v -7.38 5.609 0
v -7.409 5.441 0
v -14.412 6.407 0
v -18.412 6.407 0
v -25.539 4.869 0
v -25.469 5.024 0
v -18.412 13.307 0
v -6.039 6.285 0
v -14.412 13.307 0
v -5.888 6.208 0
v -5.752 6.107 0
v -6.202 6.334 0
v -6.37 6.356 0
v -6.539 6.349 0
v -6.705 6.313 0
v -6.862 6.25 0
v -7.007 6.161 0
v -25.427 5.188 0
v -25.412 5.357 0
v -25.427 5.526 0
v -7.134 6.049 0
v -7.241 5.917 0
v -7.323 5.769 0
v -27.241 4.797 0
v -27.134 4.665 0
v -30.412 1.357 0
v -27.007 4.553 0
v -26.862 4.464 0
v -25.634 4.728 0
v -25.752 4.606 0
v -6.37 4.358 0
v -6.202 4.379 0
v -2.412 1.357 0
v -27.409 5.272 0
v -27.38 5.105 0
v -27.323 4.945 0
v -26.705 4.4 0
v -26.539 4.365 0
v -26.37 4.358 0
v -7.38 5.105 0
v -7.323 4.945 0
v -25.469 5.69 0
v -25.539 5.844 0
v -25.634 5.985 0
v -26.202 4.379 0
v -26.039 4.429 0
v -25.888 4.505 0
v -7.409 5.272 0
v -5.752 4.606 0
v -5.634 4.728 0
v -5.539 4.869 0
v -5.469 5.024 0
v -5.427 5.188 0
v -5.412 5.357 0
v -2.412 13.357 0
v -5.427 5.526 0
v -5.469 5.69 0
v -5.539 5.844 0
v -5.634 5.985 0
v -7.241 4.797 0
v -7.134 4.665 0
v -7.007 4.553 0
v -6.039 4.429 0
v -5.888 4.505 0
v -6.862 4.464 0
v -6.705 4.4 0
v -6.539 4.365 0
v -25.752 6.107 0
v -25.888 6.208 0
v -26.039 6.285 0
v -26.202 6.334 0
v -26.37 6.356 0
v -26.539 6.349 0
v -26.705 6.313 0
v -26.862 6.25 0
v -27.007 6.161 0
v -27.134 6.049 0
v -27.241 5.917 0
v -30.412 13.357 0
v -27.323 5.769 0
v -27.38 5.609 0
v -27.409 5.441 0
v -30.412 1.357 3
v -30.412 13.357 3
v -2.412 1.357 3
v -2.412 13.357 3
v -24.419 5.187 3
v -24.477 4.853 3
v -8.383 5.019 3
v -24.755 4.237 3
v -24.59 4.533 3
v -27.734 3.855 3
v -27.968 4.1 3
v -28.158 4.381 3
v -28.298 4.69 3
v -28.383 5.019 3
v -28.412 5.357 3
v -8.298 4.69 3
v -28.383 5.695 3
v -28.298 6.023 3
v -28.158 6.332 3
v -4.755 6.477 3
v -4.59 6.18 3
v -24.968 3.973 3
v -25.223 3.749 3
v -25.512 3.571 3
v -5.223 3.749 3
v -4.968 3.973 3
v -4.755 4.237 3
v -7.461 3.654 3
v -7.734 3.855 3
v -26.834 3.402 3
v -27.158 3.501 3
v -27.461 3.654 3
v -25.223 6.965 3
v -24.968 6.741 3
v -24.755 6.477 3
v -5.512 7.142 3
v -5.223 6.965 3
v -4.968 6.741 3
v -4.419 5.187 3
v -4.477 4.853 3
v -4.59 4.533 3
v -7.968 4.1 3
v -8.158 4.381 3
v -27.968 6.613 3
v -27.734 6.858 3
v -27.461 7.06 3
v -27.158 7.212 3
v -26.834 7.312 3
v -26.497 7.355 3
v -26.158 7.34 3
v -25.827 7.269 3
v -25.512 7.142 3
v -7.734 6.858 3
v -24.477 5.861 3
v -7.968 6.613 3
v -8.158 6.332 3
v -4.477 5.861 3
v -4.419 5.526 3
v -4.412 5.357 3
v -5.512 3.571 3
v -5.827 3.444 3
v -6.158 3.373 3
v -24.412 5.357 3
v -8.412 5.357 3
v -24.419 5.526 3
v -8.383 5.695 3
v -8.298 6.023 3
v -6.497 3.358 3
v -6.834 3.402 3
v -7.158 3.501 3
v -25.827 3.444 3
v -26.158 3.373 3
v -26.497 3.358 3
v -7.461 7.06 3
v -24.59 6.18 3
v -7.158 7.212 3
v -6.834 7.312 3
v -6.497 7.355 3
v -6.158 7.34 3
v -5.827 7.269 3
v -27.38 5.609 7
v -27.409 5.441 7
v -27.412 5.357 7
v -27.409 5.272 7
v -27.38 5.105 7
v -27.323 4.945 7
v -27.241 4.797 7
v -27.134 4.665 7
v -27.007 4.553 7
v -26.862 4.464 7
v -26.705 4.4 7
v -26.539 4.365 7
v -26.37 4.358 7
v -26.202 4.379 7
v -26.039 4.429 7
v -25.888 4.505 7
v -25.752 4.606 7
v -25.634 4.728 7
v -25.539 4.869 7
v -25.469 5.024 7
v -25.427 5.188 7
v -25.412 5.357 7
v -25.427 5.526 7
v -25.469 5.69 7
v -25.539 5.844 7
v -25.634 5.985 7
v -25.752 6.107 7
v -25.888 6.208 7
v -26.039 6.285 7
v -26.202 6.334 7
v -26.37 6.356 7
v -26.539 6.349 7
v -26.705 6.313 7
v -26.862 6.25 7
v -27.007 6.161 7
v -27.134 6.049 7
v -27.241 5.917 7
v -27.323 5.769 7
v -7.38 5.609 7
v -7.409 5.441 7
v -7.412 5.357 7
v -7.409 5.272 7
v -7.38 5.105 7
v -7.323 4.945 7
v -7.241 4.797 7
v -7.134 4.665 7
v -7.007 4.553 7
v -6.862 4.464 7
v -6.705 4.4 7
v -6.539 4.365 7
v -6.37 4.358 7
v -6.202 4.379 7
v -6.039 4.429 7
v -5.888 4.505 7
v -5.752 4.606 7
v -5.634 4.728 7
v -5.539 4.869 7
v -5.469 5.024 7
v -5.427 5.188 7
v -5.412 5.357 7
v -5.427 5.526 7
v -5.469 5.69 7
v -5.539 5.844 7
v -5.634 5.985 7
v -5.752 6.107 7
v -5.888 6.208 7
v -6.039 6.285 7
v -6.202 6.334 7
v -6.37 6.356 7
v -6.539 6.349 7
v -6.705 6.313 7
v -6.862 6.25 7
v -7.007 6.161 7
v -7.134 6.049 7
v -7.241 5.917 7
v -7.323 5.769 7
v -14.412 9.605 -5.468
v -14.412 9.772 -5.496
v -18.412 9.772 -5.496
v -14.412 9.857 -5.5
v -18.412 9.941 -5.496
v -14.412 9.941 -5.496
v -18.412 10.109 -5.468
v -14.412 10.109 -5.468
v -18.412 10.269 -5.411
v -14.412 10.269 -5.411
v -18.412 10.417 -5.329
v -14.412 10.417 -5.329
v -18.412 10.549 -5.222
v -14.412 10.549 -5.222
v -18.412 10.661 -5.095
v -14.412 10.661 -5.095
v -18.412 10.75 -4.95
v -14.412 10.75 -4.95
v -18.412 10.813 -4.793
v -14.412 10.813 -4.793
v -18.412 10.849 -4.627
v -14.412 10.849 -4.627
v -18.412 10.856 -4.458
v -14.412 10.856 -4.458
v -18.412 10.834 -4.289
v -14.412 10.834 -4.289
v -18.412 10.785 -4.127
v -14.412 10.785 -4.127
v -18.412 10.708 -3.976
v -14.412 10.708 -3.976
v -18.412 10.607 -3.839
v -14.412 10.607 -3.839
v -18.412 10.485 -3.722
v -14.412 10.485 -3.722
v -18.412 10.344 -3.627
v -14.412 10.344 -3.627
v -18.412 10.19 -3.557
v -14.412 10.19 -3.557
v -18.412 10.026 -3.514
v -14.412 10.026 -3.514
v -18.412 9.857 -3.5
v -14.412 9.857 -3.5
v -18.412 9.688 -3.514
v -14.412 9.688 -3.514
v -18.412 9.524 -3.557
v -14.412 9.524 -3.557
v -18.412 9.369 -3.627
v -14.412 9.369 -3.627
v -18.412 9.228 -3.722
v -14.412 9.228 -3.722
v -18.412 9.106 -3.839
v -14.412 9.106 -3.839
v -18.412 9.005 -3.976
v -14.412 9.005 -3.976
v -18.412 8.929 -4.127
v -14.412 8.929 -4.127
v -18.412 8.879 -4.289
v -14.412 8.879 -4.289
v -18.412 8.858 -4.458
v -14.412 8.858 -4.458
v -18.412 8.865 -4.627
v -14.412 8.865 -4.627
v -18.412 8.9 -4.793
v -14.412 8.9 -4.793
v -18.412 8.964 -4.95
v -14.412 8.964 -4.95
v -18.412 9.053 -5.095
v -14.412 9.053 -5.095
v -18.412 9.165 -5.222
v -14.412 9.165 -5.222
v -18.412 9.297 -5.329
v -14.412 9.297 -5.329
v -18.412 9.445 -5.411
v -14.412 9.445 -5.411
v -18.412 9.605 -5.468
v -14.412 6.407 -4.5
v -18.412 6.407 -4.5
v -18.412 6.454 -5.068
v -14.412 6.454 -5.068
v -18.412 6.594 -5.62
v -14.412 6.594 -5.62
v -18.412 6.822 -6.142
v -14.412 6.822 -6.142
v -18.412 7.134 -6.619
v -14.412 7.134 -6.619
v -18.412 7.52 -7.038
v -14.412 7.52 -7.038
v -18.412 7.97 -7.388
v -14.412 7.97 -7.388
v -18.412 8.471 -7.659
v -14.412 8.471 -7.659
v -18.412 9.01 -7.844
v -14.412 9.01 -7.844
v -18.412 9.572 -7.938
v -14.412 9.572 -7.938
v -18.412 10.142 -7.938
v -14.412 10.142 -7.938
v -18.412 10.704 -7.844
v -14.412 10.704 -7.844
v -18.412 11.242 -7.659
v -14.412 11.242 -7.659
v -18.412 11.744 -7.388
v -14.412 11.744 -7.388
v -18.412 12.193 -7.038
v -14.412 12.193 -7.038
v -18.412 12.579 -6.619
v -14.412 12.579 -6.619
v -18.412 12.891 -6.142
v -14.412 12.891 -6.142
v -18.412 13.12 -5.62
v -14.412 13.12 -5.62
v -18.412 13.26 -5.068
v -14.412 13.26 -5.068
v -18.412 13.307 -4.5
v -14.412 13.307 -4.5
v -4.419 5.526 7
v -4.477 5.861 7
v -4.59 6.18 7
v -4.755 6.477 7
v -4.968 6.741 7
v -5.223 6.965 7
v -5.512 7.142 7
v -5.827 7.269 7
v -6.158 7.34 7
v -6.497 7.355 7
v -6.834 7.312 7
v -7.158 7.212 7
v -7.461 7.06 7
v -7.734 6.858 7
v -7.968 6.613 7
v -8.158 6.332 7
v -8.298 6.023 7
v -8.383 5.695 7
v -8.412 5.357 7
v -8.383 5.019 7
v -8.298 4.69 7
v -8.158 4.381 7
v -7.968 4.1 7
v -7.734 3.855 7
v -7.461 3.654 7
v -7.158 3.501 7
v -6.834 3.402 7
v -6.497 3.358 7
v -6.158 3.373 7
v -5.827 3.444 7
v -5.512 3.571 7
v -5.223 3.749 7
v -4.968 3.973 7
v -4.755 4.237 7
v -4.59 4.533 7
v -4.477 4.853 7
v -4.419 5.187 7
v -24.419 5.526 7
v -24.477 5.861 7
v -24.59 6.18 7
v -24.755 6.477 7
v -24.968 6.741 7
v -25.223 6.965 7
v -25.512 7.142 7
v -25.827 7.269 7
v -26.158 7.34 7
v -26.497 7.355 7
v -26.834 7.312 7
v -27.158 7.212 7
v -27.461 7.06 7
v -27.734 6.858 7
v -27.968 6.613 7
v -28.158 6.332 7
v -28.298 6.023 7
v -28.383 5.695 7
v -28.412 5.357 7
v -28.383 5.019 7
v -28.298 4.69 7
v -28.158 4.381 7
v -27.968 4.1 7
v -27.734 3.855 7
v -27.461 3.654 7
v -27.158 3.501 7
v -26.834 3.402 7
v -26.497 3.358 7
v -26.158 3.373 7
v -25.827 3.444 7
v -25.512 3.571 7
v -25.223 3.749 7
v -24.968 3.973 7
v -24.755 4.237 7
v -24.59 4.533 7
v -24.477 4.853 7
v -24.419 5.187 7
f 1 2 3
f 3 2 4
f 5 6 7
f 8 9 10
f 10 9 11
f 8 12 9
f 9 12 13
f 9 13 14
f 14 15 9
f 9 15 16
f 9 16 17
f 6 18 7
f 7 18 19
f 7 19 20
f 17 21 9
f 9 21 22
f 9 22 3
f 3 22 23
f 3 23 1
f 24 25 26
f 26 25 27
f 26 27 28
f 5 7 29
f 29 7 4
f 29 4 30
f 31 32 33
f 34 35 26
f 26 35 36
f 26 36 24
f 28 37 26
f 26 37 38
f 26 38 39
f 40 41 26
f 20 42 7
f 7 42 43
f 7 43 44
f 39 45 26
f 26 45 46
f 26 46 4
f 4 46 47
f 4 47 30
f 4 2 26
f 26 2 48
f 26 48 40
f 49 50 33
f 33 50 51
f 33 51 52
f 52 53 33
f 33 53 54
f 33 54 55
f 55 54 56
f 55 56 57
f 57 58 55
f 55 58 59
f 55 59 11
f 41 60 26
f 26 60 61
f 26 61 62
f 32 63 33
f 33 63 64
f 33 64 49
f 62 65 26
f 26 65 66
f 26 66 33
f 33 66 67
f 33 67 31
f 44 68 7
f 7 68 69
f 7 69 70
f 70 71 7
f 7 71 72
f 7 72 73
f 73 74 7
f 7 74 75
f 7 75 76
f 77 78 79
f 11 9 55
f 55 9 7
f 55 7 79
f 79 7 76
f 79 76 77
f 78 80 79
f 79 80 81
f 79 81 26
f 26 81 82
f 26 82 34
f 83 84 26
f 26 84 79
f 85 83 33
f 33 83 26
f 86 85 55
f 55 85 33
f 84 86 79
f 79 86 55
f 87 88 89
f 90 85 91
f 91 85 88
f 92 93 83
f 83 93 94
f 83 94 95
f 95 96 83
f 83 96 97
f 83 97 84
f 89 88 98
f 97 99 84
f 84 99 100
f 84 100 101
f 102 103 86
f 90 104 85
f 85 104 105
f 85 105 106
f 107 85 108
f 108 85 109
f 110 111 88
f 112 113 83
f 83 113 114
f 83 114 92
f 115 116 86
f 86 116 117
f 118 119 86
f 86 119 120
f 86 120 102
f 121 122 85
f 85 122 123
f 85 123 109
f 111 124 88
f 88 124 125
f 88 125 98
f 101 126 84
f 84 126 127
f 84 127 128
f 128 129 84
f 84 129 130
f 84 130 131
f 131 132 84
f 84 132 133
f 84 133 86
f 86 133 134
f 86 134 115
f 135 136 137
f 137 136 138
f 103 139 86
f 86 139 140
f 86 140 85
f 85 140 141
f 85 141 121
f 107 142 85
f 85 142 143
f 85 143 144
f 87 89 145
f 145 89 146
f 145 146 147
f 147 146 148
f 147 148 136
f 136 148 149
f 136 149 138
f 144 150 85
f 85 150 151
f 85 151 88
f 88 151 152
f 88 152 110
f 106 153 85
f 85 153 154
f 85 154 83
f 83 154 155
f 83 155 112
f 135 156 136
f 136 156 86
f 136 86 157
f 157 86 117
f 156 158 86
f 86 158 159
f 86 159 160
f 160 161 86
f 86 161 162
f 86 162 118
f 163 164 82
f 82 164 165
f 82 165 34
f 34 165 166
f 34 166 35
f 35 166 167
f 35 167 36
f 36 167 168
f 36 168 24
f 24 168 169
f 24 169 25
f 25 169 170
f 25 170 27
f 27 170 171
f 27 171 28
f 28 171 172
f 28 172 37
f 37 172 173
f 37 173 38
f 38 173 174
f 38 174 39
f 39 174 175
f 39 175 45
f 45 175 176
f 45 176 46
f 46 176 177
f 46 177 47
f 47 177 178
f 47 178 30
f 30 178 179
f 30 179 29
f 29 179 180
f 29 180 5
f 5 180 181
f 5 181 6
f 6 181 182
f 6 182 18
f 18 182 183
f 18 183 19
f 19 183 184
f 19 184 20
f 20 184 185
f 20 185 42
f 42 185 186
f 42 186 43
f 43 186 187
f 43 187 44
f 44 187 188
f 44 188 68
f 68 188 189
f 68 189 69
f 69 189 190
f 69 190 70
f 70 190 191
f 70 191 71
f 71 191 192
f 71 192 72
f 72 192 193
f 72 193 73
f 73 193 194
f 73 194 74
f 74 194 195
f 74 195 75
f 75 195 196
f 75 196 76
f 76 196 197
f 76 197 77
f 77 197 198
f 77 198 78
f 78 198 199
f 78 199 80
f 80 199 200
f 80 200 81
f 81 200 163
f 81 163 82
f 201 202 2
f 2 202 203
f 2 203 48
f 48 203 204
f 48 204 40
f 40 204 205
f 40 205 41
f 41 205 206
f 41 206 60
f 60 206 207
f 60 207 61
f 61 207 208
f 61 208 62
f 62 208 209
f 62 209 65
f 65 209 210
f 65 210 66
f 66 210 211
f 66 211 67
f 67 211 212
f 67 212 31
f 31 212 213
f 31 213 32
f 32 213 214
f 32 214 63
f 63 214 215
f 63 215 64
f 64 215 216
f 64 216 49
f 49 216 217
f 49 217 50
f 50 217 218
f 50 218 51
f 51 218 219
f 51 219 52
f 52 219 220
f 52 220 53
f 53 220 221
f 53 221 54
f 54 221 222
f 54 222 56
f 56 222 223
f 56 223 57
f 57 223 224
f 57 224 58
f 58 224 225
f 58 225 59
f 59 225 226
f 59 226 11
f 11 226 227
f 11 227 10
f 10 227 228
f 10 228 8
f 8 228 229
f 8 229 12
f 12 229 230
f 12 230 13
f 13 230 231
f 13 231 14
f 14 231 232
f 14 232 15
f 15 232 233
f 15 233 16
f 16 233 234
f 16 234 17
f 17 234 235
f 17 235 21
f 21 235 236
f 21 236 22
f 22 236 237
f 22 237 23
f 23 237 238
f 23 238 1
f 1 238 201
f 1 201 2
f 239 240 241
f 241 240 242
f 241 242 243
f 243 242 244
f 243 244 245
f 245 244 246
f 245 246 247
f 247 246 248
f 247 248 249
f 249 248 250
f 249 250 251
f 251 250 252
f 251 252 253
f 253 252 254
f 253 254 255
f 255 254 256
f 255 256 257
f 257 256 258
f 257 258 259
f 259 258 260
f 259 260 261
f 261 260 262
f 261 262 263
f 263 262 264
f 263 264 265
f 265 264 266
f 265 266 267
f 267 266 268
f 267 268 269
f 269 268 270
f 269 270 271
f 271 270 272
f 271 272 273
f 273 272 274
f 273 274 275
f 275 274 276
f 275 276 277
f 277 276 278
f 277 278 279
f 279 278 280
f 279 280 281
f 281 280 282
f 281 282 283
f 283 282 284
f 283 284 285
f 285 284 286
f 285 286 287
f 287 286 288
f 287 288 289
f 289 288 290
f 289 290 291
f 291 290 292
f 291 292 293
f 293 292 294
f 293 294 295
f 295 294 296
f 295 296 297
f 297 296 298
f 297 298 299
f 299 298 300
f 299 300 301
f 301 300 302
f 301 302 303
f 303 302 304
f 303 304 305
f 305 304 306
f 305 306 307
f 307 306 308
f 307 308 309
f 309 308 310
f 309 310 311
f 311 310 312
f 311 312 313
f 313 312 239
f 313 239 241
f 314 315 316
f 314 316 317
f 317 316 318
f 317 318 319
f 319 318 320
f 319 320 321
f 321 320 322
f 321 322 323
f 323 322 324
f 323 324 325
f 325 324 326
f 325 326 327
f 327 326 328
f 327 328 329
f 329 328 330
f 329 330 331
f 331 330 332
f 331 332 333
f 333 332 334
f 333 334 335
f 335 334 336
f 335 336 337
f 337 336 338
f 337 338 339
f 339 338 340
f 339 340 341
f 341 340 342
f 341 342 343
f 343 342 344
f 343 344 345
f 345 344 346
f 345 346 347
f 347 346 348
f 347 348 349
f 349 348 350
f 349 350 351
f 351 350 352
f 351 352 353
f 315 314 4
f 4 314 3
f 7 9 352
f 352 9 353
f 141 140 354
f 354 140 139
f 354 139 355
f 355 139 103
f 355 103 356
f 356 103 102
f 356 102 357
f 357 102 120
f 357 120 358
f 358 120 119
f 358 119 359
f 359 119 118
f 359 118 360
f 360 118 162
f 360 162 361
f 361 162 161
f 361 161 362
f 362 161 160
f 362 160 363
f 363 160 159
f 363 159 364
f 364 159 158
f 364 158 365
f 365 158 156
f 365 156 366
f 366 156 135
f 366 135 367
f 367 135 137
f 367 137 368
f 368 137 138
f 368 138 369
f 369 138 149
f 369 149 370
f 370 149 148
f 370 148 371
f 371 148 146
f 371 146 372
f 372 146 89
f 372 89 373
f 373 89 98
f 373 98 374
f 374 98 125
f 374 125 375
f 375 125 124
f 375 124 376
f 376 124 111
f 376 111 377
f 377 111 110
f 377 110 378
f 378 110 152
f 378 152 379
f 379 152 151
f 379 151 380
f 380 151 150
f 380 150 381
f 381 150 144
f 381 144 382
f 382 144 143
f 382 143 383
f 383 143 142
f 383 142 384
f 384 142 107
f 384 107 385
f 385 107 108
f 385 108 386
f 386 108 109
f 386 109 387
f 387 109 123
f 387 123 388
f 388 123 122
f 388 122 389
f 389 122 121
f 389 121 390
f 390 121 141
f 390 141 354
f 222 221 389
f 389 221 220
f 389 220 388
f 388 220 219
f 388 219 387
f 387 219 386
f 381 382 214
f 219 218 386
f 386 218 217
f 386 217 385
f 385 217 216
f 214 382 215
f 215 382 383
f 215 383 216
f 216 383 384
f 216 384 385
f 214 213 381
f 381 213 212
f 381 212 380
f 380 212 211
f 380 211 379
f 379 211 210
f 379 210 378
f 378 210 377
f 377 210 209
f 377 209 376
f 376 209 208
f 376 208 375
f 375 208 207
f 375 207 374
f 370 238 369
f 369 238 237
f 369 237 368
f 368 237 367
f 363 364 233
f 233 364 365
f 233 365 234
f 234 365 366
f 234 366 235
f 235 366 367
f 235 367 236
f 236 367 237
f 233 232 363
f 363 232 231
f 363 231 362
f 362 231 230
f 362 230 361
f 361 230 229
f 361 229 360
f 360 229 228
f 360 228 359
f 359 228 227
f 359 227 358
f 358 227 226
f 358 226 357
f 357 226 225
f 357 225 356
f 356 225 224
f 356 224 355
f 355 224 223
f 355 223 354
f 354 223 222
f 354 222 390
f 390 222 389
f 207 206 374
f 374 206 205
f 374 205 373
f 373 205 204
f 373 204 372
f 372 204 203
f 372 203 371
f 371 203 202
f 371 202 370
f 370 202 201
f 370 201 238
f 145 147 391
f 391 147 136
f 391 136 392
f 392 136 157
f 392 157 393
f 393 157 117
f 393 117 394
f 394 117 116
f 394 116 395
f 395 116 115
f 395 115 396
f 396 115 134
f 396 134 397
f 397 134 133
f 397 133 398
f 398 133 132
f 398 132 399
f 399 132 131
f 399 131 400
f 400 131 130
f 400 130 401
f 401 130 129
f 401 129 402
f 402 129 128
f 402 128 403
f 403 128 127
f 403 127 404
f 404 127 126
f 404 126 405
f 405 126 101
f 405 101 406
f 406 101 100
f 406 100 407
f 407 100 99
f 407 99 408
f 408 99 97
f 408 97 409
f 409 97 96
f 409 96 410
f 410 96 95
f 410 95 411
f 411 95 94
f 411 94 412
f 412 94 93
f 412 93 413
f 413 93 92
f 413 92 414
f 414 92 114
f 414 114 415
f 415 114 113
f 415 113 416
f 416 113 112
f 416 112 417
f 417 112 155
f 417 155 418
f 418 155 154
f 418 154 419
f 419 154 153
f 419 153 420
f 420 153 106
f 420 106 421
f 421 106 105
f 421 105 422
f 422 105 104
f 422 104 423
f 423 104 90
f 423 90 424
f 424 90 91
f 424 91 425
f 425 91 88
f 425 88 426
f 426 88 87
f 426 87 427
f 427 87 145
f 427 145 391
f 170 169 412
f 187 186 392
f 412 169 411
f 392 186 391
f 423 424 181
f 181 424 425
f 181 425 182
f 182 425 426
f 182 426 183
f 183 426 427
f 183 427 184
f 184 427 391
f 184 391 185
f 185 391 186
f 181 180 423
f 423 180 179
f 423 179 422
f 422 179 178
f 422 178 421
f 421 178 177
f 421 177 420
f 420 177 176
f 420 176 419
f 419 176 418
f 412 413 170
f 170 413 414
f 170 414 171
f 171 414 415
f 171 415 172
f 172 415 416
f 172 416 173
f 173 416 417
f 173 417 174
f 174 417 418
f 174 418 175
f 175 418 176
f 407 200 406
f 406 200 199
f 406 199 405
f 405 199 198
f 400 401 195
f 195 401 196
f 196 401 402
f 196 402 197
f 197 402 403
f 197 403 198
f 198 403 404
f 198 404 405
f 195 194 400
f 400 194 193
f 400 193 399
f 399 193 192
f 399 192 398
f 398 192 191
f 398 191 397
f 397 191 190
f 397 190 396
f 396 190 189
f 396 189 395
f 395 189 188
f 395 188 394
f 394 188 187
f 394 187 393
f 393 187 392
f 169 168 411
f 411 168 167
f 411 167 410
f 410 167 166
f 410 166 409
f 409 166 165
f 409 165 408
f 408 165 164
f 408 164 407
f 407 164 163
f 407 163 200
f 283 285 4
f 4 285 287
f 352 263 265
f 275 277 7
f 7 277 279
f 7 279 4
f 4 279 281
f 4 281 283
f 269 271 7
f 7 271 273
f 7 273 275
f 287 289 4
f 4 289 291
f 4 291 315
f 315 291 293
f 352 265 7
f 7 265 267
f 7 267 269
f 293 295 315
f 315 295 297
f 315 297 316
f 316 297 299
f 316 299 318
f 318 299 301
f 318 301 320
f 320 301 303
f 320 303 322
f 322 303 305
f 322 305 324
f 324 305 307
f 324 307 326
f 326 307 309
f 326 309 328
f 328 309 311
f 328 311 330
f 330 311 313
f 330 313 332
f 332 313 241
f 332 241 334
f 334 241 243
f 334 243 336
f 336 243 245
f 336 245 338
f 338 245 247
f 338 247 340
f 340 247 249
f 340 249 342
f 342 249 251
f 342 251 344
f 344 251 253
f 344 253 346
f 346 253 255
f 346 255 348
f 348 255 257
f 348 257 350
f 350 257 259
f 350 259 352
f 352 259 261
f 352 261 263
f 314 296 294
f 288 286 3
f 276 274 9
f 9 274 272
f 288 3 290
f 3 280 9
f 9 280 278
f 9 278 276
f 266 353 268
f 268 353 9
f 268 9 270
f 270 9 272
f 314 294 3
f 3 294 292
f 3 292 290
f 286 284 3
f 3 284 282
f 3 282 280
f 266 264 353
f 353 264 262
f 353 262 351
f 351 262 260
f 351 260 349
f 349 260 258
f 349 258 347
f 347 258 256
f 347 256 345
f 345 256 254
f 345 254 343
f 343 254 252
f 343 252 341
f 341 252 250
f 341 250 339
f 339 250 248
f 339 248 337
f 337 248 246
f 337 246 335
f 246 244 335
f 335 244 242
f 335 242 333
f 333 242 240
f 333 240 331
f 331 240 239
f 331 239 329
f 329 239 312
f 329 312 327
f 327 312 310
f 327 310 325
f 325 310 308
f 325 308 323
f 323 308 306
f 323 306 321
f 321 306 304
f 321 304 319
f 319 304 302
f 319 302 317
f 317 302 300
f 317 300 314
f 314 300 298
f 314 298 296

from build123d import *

# Parameters (mm, degrees)
CROQUIS1_W              = 28
CROQUIS1_H              = 12
SALIENTE_EXTRUIR1_DEPTH = 3
CROQUIS2_R              = 1
CORTAR_EXTRUIR1_DEPTH   = 3
CROQUIS3_W              = 3
CROQUIS3_H              = 8.392153605
SALIENTE_EXTRUIR2_DEPTH = 8
CROQUIS4_R              = 1
CORTAR_EXTRUIR2_DEPTH   = 3
CORTAR_EXTRUIR3_DEPTH   = 8
SALIENTE_EXTRUIR3_START = -7
CROQUIS8_R              = 2
CROQUIS8_R_2            = 1
SALIENTE_EXTRUIR3_DEPTH = 7
SALIENTE_EXTRUIR4_START = 0.5
CROQUIS11_R             = 1
SALIENTE_EXTRUIR4_DEPTH = 0.5
CROQUIS12_R             = 1
SALIENTE_EXTRUIR5_DEPTH = 0.5


with BuildPart() as part:
    # Croquis1 → Saliente-Extruir1 (new body)
    with BuildSketch(Plane.XY):
        with Locations((-16.412225504, 7.356643357)):
            Rectangle(CROQUIS1_W, CROQUIS1_H)
    extrude(amount=SALIENTE_EXTRUIR1_DEPTH)

    # Croquis2 → Cortar-Extruir1 (cut)
    with BuildSketch(Plane.XY.offset(3)):
        with Locations((-26.412225504, 5.356643357)):
            Circle(CROQUIS2_R)
        with Locations((-6.412225504, 5.356643357)):
            Circle(CROQUIS2_R)
    extrude(amount=-CORTAR_EXTRUIR1_DEPTH, mode=Mode.SUBTRACT)

    # Croquis3 → Saliente-Extruir2 (add)
    with BuildSketch(Plane(origin=(0, 0, 0), x_dir=(-1, 0, 0), z_dir=(0, 0, -1))):
        with Locations((16.412225504, 9.160566555)):
            Rectangle(CROQUIS3_W, CROQUIS3_H)
    extrude(amount=SALIENTE_EXTRUIR2_DEPTH)

    # Croquis4 → Cortar-Extruir2 (cut)
    with BuildSketch(Plane.ZY.offset(17.912225504)):
        with Locations((-4.5, 9.856643357)):
            Circle(CROQUIS4_R)
    extrude(amount=-CORTAR_EXTRUIR2_DEPTH, mode=Mode.SUBTRACT)

    # Croquis6 → Cortar-Extruir3 (cut)
    with BuildSketch(Plane.ZY.offset(17.912225504)):
        with BuildLine():
            Line((-8, 13.356643357), (-4.5, 13.356643357))
            Line((-4.5, 13.356643357), (0, 13.356643357))
            Line((0, 13.356643357), (0, 13.306643357))
            Line((0, 13.306643357), (-4.5, 13.306643357))
            ThreePointArc((-4.5, 13.306643357), (-7.95, 9.856643357), (-4.5, 6.406643357))
            Line((-4.5, 6.406643357), (0, 6.406643357))
            Line((0, 6.406643357), (0, 4.964489752))
            Line((0, 4.964489752), (-8, 4.964489752))
            Line((-8, 4.964489752), (-8, 6.352103478))
            Line((-8, 6.352103478), (-8, 13.356643357))
        make_face()
    extrude(amount=-CORTAR_EXTRUIR3_DEPTH, mode=Mode.SUBTRACT)

    # Croquis8 → Saliente-Extruir3 (add)
    # profile 1 of 2: a face of its own
    with BuildSketch(Plane(origin=(0, 0, 0), x_dir=(-1, 0, 0), z_dir=(0, 0, -1)).offset(SALIENTE_EXTRUIR3_START)):
        with Locations((6.412225504, 5.356643357)):
            Circle(CROQUIS8_R)
        with Locations(Location((6.412225504, 5.356643357, 0), (0, 0, 180))):
            Circle(CROQUIS8_R_2, mode=Mode.SUBTRACT)
    # profile 2 of 2: a face of its own
    with BuildSketch(Plane(origin=(0, 0, 0), x_dir=(-1, 0, 0), z_dir=(0, 0, -1)).offset(SALIENTE_EXTRUIR3_START)):
        with Locations((26.412225504, 5.356643357)):
            Circle(CROQUIS8_R)
        with Locations(Location((26.412225504, 5.356643357, 0), (0, 0, 180))):
            Circle(CROQUIS8_R_2, mode=Mode.SUBTRACT)
    extrude(amount=SALIENTE_EXTRUIR3_DEPTH)

    # Croquis11 → Saliente-Extruir4 (add)
    with BuildSketch(Plane.ZY.offset(17.912225504).offset(SALIENTE_EXTRUIR4_START)):
        with BuildLine():
            Line((-4.5, 6.406643357), (0, 6.406643357))
            Line((0, 6.406643357), (0, 13.306643357))
            Line((0, 13.306643357), (-4.5, 13.306643357))
            ThreePointArc((-4.5, 13.306643357), (-7.95, 9.856643357), (-4.5, 6.406643357))
        make_face()
        with Locations((-4.5, 9.856643357)):
            Circle(CROQUIS11_R, mode=Mode.SUBTRACT)
    extrude(amount=-SALIENTE_EXTRUIR4_DEPTH)

    # Croquis12 → Saliente-Extruir5 (add)
    with BuildSketch(Plane(origin=(-14.912225504, 0, 0), x_dir=(0, 0, -1), z_dir=(1, 0, 0))):
        with BuildLine():
            Line((4.5, 13.306643357), (0, 13.306643357))
            Line((0, 13.306643357), (0, 6.406643357))
            Line((0, 6.406643357), (4.5, 6.406643357))
            ThreePointArc((4.5, 6.406643357), (7.95, 9.856643357), (4.5, 13.306643357))
        make_face()
        with Locations(Location((4.5, 9.856643357, 0), (0, 0, 180))):
            Circle(CROQUIS12_R, mode=Mode.SUBTRACT)
    extrude(amount=SALIENTE_EXTRUIR5_DEPTH)


solid = part.part
